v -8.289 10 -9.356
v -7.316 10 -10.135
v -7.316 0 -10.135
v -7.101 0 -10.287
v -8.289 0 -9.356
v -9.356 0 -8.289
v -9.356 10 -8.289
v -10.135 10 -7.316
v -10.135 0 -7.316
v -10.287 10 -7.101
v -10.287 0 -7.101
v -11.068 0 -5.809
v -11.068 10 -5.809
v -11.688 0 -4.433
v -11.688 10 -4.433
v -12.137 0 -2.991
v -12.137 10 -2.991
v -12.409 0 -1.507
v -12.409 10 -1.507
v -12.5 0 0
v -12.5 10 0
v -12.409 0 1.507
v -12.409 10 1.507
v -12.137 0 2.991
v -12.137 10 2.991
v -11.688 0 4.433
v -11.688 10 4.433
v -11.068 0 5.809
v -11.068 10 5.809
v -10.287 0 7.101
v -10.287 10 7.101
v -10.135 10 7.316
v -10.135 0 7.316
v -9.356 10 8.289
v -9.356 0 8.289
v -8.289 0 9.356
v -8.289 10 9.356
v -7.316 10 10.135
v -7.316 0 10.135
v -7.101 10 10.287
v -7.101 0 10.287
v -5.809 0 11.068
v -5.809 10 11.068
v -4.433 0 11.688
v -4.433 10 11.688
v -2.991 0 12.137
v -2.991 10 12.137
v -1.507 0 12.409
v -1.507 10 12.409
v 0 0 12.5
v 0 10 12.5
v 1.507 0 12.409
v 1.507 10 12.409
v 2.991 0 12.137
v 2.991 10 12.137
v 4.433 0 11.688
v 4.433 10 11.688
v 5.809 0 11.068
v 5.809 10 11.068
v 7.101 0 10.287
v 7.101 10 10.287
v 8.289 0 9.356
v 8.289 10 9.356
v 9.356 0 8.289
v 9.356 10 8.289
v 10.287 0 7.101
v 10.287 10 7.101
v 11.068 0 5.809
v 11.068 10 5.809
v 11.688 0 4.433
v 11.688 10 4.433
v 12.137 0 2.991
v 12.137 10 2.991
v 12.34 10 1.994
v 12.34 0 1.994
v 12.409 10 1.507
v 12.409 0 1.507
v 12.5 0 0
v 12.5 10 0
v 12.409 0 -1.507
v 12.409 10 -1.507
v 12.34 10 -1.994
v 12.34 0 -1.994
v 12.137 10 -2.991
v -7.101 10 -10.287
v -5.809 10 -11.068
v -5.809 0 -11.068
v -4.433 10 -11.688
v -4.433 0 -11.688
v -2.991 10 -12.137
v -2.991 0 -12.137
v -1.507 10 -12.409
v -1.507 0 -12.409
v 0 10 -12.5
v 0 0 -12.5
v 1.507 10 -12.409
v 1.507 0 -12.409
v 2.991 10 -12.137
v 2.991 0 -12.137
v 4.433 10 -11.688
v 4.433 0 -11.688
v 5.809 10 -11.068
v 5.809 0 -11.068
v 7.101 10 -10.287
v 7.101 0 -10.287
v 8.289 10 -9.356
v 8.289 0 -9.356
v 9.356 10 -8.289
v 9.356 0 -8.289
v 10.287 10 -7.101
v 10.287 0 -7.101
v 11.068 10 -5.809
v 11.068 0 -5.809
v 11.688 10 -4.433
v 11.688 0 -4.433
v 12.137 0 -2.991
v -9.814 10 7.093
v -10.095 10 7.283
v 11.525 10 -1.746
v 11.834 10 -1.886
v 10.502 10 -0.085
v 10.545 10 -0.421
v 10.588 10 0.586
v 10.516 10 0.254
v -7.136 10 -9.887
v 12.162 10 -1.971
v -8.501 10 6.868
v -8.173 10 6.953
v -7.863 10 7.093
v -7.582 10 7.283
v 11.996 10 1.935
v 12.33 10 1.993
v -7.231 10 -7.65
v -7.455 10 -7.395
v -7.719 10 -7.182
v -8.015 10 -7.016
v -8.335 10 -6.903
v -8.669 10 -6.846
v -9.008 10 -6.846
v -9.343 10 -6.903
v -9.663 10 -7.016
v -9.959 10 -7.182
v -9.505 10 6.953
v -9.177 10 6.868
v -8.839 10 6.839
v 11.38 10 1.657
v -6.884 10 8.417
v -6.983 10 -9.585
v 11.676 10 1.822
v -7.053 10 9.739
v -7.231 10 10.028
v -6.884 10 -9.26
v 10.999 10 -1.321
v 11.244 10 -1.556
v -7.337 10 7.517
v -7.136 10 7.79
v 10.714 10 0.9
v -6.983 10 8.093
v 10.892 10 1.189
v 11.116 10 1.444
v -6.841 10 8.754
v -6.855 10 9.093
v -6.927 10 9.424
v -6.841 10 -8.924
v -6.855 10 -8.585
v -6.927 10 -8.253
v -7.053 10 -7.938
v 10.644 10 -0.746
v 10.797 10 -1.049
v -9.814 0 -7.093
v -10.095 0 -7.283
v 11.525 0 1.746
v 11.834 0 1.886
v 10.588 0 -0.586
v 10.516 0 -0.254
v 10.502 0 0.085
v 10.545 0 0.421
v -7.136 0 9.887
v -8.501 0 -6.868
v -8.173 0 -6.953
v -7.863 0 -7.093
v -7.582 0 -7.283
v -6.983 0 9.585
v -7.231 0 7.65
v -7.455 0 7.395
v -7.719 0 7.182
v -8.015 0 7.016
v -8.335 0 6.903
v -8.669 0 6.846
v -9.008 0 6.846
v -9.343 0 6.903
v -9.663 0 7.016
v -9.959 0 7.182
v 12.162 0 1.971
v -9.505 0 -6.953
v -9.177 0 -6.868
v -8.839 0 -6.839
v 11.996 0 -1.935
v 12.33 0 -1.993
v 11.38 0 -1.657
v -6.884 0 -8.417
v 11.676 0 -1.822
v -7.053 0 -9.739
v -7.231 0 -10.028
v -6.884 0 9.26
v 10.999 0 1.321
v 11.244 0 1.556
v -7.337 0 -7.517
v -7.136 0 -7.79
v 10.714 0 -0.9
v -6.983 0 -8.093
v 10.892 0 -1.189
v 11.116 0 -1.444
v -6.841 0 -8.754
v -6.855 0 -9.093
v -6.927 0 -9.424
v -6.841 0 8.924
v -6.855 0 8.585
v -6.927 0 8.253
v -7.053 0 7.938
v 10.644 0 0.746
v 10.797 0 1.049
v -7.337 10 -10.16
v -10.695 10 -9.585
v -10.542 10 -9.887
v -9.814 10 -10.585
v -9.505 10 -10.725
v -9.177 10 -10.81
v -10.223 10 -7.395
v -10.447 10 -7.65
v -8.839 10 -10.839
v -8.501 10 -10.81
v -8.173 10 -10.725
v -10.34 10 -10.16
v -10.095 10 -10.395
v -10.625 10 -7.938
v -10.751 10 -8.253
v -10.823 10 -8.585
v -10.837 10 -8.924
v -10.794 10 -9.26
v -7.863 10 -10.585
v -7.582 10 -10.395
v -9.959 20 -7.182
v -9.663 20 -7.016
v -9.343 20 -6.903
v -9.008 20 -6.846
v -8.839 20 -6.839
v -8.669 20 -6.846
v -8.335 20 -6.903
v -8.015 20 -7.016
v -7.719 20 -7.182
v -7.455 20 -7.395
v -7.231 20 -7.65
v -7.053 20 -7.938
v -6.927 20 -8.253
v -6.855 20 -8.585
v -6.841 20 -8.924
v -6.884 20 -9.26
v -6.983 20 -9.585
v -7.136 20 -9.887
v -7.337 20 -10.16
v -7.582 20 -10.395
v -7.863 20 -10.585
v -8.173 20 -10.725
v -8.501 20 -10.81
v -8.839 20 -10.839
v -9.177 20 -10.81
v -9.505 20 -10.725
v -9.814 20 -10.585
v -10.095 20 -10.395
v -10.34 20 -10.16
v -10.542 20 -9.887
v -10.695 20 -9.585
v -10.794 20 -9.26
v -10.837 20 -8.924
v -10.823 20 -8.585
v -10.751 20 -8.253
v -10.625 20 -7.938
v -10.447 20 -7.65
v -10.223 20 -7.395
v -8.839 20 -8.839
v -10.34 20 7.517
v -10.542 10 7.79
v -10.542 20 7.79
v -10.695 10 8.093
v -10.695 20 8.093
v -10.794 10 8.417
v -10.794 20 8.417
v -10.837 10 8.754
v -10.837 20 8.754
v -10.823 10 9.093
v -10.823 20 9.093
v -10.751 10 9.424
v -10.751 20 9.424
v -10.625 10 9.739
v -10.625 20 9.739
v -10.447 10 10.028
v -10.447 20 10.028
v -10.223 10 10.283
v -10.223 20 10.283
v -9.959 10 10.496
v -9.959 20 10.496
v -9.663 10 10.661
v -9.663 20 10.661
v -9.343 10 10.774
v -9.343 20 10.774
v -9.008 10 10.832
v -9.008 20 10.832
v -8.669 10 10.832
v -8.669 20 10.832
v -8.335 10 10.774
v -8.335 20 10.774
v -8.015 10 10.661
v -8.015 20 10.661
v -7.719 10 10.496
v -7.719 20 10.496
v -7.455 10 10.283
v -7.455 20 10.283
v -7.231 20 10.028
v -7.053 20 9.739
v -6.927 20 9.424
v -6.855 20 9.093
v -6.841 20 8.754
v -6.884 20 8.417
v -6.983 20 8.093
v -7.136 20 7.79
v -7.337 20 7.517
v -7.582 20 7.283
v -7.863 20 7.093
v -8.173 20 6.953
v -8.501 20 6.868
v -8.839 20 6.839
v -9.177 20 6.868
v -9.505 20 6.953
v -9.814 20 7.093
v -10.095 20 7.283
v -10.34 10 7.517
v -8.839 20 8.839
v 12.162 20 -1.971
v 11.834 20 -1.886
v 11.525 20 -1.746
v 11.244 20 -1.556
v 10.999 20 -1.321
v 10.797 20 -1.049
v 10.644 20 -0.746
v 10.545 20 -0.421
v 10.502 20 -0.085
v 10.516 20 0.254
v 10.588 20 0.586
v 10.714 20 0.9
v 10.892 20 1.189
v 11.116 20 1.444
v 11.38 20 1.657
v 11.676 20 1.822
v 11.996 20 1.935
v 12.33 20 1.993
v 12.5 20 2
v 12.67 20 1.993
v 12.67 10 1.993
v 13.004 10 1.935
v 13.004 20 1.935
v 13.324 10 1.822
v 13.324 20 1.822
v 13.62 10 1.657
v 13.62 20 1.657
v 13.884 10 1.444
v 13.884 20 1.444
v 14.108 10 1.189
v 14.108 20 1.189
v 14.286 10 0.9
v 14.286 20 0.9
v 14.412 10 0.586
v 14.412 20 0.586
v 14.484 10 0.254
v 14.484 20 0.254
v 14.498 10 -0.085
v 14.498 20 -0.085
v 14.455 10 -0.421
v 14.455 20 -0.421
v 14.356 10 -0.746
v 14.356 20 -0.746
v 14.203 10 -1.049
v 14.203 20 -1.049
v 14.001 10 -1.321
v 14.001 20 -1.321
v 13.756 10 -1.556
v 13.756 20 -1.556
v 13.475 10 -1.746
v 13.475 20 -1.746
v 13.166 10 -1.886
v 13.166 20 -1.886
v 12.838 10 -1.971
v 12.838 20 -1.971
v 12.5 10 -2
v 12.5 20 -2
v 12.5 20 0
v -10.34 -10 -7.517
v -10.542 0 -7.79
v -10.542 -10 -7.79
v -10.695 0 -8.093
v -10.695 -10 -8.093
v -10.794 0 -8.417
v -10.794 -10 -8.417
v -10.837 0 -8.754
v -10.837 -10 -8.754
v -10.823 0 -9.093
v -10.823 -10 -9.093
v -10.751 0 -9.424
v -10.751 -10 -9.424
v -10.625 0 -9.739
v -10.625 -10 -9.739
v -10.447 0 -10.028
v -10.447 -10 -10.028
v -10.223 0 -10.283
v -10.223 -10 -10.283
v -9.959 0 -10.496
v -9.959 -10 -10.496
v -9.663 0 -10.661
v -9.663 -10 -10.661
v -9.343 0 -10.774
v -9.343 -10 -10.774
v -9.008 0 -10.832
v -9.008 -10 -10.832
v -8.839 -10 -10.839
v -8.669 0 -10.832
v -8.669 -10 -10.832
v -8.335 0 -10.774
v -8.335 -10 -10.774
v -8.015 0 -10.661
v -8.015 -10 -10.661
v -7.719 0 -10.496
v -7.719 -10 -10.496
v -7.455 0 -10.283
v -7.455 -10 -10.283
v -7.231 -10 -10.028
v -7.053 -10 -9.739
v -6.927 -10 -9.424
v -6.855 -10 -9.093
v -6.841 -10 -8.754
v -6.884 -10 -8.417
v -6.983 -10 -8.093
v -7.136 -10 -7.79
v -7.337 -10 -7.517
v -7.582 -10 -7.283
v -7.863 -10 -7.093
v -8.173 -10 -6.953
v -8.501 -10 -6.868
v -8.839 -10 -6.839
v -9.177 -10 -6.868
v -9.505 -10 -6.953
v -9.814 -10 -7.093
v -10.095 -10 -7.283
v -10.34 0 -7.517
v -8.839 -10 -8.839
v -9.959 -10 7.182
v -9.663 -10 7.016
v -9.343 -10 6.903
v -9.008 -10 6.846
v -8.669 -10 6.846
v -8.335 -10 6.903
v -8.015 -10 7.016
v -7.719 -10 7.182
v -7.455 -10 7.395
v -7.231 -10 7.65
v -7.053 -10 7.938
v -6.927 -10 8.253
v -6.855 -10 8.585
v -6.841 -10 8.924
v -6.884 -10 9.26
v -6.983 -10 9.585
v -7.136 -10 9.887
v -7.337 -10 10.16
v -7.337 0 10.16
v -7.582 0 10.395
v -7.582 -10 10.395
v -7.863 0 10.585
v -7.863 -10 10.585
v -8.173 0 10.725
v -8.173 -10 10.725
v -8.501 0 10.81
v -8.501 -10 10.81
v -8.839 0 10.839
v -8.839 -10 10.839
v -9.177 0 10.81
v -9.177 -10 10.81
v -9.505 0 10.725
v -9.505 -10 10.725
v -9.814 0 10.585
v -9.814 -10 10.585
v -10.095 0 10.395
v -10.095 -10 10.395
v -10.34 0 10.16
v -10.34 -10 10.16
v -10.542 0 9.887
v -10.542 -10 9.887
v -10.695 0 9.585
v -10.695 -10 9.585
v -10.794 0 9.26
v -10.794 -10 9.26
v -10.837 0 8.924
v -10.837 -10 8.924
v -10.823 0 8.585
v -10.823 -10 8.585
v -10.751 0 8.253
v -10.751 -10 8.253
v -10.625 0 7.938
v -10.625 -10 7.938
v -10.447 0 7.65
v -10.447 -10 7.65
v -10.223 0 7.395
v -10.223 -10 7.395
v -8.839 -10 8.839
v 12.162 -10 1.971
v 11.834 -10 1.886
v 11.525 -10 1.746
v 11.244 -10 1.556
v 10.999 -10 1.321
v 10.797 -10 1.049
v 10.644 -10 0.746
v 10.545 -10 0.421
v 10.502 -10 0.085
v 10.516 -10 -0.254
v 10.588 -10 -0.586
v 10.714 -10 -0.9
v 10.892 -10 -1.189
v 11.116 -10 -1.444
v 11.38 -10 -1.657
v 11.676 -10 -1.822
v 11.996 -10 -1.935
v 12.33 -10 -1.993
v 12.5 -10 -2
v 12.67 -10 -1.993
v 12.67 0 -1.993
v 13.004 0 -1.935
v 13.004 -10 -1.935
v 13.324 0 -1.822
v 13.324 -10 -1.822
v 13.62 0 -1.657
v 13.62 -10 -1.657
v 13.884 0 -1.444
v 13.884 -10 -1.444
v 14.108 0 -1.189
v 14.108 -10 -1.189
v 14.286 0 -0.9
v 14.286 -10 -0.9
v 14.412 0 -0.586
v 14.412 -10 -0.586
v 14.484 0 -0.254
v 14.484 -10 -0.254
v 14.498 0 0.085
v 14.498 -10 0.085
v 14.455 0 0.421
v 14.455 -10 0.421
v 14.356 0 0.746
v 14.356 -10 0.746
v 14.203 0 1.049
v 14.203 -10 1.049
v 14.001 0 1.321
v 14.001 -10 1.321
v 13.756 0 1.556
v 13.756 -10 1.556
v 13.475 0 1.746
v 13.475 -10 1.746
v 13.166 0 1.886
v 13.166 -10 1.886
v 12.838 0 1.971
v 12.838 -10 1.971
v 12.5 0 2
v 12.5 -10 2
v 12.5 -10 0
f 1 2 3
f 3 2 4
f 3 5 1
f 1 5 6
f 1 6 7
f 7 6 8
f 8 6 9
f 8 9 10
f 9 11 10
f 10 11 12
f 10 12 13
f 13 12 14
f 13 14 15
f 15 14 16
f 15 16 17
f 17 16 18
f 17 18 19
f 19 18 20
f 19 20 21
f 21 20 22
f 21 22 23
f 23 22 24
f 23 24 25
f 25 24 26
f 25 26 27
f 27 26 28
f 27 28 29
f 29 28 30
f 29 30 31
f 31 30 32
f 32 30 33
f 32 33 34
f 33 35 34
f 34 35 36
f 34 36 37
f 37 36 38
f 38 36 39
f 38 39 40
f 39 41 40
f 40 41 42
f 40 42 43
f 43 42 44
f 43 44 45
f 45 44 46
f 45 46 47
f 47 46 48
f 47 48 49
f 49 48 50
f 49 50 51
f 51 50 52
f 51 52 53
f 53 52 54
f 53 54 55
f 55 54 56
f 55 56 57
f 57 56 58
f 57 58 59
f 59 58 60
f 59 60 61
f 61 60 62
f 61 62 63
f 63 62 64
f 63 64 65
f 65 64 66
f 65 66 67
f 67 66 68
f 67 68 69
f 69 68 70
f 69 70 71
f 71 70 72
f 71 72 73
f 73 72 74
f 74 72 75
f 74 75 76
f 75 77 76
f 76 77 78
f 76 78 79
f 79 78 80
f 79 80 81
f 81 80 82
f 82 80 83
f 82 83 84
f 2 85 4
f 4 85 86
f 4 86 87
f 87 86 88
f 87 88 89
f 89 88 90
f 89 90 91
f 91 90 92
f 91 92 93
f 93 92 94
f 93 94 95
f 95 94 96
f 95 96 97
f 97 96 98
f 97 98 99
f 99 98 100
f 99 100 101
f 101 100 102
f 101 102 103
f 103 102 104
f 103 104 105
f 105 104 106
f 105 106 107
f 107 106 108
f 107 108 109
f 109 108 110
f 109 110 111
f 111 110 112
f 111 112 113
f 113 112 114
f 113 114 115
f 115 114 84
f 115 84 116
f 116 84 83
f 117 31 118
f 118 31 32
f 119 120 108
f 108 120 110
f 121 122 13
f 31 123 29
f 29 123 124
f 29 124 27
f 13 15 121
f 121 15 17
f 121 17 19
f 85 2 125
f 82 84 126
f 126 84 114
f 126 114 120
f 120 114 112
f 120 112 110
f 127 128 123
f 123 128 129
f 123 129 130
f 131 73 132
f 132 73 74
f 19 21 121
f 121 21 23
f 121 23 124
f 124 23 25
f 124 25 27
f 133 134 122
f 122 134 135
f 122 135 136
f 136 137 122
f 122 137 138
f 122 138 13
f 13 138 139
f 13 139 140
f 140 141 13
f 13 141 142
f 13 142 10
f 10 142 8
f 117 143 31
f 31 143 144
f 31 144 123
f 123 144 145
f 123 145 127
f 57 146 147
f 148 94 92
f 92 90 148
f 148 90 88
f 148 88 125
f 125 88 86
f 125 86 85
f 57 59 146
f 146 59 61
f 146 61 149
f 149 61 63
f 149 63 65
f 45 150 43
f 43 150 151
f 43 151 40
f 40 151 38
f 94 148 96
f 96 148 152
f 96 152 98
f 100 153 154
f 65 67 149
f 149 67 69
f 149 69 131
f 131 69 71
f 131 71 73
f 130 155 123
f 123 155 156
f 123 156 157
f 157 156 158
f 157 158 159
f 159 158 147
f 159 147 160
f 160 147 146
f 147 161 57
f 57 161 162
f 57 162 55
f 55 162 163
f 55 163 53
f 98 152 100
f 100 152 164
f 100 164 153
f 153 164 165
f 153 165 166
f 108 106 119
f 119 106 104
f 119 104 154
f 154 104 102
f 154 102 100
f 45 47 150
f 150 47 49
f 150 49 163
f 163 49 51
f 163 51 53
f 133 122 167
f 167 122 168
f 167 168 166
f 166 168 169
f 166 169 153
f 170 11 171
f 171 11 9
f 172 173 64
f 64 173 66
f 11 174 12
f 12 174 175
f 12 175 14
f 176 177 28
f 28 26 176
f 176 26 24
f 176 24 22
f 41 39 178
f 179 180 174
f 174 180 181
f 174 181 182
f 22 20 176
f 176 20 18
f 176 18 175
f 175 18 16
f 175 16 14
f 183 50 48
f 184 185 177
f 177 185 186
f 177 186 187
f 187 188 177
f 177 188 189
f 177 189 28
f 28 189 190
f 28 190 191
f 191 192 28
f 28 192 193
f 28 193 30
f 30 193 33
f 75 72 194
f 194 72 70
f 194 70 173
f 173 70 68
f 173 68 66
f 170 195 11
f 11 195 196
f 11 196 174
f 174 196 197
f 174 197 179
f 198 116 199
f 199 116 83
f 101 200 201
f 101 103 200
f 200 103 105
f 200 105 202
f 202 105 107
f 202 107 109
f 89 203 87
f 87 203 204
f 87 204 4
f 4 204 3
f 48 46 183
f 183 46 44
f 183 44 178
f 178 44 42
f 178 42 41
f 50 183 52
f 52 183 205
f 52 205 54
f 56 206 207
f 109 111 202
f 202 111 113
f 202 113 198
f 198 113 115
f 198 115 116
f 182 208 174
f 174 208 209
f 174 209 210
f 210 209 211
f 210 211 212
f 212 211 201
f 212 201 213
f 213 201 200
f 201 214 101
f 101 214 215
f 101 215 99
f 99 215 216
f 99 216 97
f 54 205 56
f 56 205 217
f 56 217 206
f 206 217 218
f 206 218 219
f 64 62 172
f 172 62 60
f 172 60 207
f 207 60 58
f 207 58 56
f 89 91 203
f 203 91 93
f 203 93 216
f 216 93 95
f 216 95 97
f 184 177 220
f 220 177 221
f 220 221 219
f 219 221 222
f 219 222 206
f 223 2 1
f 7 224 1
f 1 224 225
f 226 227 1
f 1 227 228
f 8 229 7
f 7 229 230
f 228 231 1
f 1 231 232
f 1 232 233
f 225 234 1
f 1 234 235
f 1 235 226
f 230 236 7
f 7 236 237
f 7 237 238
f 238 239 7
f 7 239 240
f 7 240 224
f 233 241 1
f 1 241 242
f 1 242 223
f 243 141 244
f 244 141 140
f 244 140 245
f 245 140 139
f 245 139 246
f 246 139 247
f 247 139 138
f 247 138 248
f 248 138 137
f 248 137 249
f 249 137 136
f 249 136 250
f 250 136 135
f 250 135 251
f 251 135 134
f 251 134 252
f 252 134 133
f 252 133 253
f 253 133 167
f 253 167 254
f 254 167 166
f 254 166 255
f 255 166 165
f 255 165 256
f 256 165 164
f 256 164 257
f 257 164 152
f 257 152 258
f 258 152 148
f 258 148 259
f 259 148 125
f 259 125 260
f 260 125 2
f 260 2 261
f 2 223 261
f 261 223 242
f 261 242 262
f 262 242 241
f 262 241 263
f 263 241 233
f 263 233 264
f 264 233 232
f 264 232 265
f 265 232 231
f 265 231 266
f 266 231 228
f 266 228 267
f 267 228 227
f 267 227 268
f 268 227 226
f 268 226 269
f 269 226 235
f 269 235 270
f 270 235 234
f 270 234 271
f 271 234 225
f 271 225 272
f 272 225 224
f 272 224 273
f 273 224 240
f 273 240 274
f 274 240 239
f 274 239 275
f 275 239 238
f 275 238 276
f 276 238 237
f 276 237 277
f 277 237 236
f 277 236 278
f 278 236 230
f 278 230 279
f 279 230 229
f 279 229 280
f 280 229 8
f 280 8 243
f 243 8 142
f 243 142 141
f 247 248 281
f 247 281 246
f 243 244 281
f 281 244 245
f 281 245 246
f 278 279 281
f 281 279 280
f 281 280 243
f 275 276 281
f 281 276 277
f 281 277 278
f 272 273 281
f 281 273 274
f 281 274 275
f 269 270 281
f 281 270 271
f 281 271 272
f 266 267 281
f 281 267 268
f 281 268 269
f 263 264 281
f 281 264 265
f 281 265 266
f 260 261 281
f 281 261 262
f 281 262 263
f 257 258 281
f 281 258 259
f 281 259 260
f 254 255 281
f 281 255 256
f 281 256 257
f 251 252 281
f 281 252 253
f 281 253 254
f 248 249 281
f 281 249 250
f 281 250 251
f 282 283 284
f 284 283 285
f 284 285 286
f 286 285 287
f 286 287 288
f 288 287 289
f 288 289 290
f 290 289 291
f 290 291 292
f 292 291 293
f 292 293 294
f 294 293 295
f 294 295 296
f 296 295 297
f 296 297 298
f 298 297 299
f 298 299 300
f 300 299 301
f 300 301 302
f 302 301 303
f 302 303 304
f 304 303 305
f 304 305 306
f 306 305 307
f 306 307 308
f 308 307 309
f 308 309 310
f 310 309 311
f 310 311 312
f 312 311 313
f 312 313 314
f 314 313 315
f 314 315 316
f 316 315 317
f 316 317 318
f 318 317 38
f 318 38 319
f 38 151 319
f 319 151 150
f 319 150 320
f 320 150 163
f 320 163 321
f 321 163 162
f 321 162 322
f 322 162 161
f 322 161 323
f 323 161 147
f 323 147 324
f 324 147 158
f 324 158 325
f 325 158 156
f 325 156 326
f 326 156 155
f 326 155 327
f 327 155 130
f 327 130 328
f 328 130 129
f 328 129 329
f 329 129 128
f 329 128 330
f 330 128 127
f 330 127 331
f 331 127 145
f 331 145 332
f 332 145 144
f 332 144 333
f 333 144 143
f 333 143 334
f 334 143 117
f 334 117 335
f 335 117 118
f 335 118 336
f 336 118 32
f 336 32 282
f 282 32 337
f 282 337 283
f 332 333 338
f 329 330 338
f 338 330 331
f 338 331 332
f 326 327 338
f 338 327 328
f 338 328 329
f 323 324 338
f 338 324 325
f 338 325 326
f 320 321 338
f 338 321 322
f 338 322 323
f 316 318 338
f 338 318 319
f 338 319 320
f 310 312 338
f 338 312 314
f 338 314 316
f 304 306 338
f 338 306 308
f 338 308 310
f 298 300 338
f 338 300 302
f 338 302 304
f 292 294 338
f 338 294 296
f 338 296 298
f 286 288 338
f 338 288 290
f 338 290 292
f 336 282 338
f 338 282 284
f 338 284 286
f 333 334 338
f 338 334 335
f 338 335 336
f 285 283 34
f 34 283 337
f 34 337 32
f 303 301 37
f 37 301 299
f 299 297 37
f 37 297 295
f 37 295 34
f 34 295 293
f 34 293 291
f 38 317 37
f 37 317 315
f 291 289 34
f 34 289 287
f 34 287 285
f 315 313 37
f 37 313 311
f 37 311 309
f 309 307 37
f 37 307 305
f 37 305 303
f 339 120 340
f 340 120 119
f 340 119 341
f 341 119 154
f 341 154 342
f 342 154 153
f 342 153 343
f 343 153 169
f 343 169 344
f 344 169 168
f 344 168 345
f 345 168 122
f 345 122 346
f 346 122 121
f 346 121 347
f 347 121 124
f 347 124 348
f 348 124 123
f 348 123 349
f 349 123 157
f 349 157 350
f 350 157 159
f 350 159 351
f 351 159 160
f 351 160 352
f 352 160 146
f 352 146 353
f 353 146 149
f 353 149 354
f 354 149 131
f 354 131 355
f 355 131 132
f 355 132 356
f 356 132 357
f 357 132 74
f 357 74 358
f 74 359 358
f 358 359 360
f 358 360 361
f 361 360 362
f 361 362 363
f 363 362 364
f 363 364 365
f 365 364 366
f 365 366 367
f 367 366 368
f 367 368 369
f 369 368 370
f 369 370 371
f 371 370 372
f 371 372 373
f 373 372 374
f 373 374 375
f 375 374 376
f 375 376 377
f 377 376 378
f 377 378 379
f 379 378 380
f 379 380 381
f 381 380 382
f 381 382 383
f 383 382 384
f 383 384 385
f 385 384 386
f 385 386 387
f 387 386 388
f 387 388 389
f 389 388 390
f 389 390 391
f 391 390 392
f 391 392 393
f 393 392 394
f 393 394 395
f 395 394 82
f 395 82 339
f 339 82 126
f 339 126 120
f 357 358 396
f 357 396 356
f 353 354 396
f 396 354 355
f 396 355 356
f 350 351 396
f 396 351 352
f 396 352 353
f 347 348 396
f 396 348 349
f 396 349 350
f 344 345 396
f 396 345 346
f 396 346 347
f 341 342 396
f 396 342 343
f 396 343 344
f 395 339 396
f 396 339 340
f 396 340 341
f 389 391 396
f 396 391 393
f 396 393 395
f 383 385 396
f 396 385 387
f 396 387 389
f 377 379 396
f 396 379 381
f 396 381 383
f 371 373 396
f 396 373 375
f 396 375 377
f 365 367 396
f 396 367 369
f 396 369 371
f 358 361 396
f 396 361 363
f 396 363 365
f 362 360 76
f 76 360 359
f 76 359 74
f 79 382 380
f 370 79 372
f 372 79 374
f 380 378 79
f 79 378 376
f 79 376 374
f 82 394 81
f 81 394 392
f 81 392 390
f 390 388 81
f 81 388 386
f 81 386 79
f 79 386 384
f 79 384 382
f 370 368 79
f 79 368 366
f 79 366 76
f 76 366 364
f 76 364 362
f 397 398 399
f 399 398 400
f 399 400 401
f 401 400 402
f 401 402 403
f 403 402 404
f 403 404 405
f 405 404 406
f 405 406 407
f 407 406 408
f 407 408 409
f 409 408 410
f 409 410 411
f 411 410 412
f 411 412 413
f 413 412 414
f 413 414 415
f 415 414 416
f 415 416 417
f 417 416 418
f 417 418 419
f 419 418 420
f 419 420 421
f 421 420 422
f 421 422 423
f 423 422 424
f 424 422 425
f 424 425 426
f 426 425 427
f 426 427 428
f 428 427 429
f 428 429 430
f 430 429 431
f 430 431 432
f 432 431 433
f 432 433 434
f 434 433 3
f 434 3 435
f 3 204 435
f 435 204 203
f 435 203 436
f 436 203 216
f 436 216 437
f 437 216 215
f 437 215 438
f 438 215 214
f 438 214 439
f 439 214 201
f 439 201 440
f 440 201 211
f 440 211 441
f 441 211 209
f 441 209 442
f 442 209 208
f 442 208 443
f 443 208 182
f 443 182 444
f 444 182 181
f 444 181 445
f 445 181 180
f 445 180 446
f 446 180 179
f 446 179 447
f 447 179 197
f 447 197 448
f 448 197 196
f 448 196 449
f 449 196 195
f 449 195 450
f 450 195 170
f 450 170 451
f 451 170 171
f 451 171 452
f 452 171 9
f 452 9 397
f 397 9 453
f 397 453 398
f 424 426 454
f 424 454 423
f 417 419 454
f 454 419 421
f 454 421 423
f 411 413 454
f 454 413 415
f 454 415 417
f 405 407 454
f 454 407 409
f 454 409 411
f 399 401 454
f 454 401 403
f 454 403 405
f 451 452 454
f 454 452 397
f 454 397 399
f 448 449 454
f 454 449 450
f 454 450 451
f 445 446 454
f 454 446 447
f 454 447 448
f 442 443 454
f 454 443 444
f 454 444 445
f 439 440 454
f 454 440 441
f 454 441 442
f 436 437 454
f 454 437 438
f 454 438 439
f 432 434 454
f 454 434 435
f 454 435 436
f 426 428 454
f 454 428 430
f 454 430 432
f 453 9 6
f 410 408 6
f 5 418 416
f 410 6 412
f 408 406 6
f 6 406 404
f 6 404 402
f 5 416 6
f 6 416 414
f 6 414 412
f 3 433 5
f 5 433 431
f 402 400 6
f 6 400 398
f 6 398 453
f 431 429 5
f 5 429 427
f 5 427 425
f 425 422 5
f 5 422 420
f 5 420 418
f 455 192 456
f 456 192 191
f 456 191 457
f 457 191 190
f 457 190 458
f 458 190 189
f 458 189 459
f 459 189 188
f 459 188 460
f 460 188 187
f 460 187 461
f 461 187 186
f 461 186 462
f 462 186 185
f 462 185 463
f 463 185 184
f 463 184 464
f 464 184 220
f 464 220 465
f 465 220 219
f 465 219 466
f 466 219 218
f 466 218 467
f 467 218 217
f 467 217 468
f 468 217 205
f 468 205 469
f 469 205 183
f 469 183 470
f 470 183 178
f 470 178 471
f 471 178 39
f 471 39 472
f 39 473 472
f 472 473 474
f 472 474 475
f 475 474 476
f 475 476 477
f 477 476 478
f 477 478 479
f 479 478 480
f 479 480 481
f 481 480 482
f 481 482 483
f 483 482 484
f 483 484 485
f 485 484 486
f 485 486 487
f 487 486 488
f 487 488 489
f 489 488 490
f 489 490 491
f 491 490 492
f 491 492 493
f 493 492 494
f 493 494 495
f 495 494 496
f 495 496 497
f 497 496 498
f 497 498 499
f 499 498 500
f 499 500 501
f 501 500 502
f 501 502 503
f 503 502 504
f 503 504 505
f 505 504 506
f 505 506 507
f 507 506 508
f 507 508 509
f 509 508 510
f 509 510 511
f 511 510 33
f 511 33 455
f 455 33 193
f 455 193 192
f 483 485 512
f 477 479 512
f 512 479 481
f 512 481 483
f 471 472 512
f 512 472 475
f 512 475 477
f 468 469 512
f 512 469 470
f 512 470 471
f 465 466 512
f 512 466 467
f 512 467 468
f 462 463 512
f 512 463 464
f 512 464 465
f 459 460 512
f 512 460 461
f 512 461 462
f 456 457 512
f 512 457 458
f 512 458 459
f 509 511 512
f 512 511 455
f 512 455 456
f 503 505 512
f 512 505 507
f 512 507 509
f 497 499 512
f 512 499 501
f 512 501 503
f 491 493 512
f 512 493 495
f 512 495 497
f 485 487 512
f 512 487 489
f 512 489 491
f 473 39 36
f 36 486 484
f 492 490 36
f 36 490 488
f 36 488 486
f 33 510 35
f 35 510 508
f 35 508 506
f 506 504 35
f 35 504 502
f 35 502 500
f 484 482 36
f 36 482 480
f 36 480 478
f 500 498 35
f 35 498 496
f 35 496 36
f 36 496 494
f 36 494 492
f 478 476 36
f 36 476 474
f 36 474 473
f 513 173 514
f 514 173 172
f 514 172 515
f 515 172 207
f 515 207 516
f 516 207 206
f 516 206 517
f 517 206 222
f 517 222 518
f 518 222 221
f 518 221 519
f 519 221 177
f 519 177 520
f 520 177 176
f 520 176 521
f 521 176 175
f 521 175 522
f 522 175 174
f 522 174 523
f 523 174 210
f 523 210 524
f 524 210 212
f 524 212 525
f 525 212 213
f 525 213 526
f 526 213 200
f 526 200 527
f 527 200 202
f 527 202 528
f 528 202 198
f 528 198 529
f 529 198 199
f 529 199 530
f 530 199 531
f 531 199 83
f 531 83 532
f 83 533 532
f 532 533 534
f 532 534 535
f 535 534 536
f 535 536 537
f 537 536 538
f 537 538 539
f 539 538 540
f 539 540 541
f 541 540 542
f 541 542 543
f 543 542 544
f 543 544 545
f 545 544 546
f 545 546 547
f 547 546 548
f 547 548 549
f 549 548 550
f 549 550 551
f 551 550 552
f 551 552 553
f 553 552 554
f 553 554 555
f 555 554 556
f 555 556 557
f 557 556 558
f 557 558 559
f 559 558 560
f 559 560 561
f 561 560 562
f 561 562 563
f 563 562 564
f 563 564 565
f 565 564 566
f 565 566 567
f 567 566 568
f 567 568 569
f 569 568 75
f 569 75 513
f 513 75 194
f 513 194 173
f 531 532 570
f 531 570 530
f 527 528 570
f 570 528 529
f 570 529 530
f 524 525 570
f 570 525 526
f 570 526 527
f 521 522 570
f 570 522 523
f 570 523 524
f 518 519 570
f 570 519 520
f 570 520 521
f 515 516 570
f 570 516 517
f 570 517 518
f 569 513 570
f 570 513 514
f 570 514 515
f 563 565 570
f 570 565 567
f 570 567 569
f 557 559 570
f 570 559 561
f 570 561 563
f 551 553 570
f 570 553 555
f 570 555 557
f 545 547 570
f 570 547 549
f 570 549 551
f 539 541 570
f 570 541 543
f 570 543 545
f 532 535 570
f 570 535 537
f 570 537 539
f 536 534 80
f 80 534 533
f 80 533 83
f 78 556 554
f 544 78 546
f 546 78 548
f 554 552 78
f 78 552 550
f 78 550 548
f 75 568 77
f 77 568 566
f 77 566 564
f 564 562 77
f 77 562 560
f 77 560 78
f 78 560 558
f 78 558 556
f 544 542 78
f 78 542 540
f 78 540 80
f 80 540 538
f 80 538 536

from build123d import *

# Parameters (mm, degrees)
SKETCH7_R           = 12.5
BOSS_EXTRUDE2_DEPTH = 10
SKETCH8_R           = 2
BOSS_EXTRUDE3_DEPTH = 10
SKETCH9_R           = 2
BOSS_EXTRUDE4_DEPTH = 10
BOSS_EXTRUDE5_START = 10
SKETCH12_R          = 2
BOSS_EXTRUDE5_DEPTH = 10
BOSS_EXTRUDE6_START = 10
SKETCH13_R          = 2
BOSS_EXTRUDE6_DEPTH = 10


with BuildPart() as part:
    # Sketch7 → Boss-Extrude2 (new body)
    with BuildSketch(Plane(origin=(0, 0, 0), x_dir=(1, 0, 0), z_dir=(0, 1, 0))):
        with Locations(Location((0, 0, 0), (0, 0, 270))):
            Circle(SKETCH7_R)
    extrude(amount=BOSS_EXTRUDE2_DEPTH)

    # Sketch8 → Boss-Extrude3 (add)
    with BuildSketch(Plane(origin=(0, 10, 0), x_dir=(1, 0, 0), z_dir=(0, 1, 0))):
        with Locations(Location((-8.838834765, 8.838834765, 0), (0, 0, 40.411434264))):
            Circle(SKETCH8_R)
    boss_extrude3 = extrude(amount=BOSS_EXTRUDE3_DEPTH)

    # Mirror1: Boss-Extrude3 across plane
    add(boss_extrude3.mirror(Plane.XY))

    # Sketch9 → Boss-Extrude4 (add)
    with BuildSketch(Plane(origin=(0, 10, 0), x_dir=(1, 0, 0), z_dir=(0, 1, 0))):
        with Locations(Location((12.5, 0, 0), (0, 0, 94.588565736))):
            Circle(SKETCH9_R)
    extrude(amount=BOSS_EXTRUDE4_DEPTH)

    # Sketch12 → Boss-Extrude5 (add)
    with BuildSketch(Plane.XZ.offset(BOSS_EXTRUDE5_START)):
        with Locations(Location((-8.838834765, -8.838834765, 0), (0, 0, 319.588565736))):
            Circle(SKETCH12_R)
    boss_extrude5 = extrude(amount=-BOSS_EXTRUDE5_DEPTH)

    # Mirror3: Boss-Extrude5 across plane
    add(boss_extrude5.mirror(Plane.XY))

    # Sketch13 → Boss-Extrude6 (add)
    with BuildSketch(Plane(origin=(0, 0, 0), x_dir=(-1, 0, 0), z_dir=(0, -1, 0)).offset(BOSS_EXTRUDE6_START)):
        with Locations(Location((-12.5, 0, 0), (0, 0, 85.411434264))):
            Circle(SKETCH13_R)
    extrude(amount=-BOSS_EXTRUDE6_DEPTH)


solid = part.part
